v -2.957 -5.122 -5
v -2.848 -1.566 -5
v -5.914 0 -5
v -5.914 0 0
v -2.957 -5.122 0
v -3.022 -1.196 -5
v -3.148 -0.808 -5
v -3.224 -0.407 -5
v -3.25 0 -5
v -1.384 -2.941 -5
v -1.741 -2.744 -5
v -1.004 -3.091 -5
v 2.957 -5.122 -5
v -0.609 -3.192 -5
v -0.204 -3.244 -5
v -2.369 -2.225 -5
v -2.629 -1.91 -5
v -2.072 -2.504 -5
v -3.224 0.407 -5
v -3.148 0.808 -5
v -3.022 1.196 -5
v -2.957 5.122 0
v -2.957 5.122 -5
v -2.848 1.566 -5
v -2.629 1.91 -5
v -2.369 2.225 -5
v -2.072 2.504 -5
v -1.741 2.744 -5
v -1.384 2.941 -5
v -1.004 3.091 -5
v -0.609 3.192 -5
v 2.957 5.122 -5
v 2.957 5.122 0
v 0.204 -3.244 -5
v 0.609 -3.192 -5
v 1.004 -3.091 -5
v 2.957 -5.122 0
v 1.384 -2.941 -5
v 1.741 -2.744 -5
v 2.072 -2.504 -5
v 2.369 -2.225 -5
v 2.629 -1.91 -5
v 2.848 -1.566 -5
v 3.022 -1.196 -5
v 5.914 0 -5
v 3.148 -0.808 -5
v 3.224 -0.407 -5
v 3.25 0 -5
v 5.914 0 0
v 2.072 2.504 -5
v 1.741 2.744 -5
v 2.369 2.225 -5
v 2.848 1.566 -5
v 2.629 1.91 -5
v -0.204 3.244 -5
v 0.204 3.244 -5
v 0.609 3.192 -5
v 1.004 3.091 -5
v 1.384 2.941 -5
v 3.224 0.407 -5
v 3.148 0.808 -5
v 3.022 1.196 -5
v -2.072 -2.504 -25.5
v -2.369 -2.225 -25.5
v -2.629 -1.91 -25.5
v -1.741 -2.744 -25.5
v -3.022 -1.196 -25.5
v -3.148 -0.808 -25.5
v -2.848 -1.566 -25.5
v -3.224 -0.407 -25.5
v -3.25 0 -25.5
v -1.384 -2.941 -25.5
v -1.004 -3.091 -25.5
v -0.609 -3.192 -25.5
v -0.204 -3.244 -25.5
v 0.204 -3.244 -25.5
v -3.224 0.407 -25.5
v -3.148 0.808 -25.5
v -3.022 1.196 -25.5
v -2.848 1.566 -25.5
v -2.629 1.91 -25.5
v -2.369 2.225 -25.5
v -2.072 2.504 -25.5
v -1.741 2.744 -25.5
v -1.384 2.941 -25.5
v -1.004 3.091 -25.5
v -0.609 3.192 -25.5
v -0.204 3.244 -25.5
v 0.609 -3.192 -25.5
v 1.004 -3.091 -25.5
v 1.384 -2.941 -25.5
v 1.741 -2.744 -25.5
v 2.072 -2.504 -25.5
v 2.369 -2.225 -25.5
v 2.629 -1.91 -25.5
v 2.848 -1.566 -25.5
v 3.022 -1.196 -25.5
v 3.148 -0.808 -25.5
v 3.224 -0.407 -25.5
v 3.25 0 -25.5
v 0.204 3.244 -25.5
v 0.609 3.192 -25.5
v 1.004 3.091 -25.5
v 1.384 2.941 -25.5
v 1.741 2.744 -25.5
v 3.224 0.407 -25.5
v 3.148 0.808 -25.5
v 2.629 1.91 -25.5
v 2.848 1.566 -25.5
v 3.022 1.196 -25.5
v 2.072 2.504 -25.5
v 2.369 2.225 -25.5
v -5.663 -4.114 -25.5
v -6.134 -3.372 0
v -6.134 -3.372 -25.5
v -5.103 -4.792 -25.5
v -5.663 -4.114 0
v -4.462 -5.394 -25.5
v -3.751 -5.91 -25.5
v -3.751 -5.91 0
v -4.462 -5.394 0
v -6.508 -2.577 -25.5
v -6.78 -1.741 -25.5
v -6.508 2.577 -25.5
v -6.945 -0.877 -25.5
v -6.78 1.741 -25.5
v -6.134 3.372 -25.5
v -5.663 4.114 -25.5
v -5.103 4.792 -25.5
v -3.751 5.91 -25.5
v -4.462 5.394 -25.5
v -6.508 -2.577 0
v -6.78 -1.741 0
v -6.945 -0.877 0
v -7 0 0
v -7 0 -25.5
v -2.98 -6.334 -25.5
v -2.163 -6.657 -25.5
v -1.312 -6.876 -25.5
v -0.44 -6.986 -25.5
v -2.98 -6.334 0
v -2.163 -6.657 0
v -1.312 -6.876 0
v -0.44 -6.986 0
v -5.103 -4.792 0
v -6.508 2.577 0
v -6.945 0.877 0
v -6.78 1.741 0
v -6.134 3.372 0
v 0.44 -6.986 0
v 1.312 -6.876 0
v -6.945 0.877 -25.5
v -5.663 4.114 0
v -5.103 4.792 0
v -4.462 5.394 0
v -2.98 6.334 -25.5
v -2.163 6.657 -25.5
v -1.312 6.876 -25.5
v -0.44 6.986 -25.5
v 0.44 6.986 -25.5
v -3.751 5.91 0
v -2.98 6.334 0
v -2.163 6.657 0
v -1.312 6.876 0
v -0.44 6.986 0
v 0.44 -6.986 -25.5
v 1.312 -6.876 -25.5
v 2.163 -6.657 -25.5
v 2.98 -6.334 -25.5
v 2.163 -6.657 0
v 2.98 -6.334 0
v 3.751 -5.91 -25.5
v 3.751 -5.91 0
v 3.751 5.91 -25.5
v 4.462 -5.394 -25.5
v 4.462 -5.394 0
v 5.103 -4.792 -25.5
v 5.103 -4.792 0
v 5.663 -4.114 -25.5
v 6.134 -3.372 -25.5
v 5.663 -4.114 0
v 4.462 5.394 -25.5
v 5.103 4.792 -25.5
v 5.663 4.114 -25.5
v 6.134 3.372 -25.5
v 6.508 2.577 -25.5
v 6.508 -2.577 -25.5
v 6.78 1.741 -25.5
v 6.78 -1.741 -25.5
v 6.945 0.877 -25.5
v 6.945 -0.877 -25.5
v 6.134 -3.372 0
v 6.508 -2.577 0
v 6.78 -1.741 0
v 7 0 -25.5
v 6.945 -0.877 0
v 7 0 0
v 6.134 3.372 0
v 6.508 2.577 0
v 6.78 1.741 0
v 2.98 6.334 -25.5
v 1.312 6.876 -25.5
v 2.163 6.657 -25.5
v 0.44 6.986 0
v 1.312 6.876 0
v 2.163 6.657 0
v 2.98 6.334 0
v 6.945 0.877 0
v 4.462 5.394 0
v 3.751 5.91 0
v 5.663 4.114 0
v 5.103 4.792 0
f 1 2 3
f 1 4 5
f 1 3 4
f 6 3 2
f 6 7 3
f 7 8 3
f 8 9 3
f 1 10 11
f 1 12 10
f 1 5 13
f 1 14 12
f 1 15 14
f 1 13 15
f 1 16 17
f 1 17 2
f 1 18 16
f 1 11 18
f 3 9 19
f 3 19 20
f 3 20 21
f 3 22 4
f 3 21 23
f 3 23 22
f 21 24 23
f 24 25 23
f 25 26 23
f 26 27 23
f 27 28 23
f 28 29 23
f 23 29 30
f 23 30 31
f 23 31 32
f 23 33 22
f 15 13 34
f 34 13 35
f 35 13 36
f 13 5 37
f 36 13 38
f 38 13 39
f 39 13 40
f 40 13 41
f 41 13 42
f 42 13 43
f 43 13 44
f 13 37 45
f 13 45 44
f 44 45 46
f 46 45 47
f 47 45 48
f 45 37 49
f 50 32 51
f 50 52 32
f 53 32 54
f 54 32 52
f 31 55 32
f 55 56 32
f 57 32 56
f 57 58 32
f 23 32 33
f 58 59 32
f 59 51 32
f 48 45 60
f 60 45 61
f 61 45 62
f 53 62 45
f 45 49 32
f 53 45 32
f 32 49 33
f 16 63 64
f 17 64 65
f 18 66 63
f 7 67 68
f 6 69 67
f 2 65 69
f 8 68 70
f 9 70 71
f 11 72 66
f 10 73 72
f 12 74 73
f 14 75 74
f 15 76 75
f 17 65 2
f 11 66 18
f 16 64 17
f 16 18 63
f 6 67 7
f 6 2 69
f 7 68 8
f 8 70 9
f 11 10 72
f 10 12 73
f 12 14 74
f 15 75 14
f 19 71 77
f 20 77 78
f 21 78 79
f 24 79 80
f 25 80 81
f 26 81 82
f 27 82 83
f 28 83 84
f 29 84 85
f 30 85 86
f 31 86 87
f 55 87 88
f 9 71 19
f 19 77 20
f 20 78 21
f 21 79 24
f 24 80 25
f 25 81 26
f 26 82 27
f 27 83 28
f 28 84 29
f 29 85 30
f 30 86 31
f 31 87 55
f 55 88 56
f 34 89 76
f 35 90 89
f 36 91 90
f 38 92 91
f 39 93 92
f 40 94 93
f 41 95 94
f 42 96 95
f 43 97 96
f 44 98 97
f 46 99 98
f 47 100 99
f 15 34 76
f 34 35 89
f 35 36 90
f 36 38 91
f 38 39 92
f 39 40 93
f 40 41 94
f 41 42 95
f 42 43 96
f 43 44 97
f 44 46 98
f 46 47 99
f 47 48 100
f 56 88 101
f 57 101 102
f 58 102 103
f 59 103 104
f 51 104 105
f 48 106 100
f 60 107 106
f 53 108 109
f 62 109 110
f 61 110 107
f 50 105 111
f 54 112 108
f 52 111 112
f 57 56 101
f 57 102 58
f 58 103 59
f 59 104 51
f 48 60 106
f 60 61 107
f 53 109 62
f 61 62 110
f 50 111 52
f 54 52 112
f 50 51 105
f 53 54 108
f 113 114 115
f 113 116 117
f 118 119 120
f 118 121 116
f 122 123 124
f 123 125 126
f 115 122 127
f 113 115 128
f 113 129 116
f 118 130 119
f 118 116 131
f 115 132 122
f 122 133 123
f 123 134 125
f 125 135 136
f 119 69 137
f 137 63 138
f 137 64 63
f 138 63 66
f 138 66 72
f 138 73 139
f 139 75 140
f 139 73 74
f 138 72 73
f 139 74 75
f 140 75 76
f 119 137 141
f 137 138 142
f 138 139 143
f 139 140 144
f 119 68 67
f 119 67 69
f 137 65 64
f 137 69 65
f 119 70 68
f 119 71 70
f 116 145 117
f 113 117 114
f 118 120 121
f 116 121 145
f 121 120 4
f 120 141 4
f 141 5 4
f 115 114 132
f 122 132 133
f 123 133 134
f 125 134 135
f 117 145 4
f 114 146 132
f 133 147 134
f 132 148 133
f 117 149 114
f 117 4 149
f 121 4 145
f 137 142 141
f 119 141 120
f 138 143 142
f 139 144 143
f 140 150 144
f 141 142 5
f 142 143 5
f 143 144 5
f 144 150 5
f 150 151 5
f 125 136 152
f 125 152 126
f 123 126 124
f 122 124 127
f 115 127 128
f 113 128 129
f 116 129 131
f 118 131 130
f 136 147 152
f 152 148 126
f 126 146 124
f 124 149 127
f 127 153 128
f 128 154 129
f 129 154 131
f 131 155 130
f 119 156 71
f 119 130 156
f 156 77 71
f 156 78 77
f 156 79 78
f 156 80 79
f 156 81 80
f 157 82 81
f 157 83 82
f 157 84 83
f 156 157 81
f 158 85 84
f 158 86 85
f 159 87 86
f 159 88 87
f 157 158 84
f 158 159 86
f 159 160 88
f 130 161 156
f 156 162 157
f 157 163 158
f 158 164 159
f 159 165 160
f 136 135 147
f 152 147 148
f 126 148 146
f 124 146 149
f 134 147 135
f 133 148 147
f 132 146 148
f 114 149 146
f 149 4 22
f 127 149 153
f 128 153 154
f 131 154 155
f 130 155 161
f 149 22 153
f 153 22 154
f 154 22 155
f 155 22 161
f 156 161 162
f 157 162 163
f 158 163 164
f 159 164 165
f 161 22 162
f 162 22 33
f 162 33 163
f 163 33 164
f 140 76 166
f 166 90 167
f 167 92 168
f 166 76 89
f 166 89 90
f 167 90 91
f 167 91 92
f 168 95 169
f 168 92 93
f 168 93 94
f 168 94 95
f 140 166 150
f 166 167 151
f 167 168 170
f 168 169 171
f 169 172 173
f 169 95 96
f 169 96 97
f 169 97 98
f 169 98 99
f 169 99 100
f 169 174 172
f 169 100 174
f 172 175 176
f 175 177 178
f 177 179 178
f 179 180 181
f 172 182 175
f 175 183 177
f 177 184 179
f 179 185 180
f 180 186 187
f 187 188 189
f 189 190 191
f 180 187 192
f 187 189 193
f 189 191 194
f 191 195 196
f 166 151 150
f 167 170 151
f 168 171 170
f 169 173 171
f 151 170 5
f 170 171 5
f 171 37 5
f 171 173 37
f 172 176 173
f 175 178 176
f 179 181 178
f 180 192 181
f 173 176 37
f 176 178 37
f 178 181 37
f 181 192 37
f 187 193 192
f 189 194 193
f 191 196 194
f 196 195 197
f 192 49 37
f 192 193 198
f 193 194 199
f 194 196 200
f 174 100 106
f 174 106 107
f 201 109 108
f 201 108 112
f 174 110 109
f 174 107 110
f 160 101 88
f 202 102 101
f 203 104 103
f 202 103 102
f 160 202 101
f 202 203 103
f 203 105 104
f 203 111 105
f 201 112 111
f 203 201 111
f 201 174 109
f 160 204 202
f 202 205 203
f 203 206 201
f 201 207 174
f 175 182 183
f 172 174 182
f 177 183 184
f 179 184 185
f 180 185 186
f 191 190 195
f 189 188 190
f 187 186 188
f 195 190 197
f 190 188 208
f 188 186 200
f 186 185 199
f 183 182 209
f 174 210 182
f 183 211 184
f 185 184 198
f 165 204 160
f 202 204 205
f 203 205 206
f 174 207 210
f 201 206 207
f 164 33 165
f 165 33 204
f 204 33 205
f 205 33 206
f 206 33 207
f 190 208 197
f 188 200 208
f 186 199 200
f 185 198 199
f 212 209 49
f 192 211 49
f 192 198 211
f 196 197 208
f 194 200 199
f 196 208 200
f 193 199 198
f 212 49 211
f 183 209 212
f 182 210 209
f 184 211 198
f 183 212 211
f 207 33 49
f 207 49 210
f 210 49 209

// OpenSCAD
$fn = 50;


difference() {
	union() {
		translate(v = [0, 0, -25.5000000000]) {
			cylinder(h = 25.5000000000, r = 7.0000000000);
		}
	}
	union() {
		translate(v = [0, 0, 0]) {
			rotate(a = [0, 0, 0]) {
				difference() {
					union() {
						translate(v = [0, 0, -5]) {
							linear_extrude(height = 5) {
								polygon(points = [[5.9142500000, 0.0000000000], [2.9571250000, 5.1218907443], [-2.9571250000, 5.1218907443], [-5.9142500000, 0.0000000000], [-2.9571250000, -5.1218907443], [2.9571250000, -5.1218907443]]);
							}
						}
					}
					union();
				}
			}
		}
		#translate(v = [0, 0, -100.0000000000]) {
			cylinder(h = 200, r = 3.2500000000);
		}
	}
}
